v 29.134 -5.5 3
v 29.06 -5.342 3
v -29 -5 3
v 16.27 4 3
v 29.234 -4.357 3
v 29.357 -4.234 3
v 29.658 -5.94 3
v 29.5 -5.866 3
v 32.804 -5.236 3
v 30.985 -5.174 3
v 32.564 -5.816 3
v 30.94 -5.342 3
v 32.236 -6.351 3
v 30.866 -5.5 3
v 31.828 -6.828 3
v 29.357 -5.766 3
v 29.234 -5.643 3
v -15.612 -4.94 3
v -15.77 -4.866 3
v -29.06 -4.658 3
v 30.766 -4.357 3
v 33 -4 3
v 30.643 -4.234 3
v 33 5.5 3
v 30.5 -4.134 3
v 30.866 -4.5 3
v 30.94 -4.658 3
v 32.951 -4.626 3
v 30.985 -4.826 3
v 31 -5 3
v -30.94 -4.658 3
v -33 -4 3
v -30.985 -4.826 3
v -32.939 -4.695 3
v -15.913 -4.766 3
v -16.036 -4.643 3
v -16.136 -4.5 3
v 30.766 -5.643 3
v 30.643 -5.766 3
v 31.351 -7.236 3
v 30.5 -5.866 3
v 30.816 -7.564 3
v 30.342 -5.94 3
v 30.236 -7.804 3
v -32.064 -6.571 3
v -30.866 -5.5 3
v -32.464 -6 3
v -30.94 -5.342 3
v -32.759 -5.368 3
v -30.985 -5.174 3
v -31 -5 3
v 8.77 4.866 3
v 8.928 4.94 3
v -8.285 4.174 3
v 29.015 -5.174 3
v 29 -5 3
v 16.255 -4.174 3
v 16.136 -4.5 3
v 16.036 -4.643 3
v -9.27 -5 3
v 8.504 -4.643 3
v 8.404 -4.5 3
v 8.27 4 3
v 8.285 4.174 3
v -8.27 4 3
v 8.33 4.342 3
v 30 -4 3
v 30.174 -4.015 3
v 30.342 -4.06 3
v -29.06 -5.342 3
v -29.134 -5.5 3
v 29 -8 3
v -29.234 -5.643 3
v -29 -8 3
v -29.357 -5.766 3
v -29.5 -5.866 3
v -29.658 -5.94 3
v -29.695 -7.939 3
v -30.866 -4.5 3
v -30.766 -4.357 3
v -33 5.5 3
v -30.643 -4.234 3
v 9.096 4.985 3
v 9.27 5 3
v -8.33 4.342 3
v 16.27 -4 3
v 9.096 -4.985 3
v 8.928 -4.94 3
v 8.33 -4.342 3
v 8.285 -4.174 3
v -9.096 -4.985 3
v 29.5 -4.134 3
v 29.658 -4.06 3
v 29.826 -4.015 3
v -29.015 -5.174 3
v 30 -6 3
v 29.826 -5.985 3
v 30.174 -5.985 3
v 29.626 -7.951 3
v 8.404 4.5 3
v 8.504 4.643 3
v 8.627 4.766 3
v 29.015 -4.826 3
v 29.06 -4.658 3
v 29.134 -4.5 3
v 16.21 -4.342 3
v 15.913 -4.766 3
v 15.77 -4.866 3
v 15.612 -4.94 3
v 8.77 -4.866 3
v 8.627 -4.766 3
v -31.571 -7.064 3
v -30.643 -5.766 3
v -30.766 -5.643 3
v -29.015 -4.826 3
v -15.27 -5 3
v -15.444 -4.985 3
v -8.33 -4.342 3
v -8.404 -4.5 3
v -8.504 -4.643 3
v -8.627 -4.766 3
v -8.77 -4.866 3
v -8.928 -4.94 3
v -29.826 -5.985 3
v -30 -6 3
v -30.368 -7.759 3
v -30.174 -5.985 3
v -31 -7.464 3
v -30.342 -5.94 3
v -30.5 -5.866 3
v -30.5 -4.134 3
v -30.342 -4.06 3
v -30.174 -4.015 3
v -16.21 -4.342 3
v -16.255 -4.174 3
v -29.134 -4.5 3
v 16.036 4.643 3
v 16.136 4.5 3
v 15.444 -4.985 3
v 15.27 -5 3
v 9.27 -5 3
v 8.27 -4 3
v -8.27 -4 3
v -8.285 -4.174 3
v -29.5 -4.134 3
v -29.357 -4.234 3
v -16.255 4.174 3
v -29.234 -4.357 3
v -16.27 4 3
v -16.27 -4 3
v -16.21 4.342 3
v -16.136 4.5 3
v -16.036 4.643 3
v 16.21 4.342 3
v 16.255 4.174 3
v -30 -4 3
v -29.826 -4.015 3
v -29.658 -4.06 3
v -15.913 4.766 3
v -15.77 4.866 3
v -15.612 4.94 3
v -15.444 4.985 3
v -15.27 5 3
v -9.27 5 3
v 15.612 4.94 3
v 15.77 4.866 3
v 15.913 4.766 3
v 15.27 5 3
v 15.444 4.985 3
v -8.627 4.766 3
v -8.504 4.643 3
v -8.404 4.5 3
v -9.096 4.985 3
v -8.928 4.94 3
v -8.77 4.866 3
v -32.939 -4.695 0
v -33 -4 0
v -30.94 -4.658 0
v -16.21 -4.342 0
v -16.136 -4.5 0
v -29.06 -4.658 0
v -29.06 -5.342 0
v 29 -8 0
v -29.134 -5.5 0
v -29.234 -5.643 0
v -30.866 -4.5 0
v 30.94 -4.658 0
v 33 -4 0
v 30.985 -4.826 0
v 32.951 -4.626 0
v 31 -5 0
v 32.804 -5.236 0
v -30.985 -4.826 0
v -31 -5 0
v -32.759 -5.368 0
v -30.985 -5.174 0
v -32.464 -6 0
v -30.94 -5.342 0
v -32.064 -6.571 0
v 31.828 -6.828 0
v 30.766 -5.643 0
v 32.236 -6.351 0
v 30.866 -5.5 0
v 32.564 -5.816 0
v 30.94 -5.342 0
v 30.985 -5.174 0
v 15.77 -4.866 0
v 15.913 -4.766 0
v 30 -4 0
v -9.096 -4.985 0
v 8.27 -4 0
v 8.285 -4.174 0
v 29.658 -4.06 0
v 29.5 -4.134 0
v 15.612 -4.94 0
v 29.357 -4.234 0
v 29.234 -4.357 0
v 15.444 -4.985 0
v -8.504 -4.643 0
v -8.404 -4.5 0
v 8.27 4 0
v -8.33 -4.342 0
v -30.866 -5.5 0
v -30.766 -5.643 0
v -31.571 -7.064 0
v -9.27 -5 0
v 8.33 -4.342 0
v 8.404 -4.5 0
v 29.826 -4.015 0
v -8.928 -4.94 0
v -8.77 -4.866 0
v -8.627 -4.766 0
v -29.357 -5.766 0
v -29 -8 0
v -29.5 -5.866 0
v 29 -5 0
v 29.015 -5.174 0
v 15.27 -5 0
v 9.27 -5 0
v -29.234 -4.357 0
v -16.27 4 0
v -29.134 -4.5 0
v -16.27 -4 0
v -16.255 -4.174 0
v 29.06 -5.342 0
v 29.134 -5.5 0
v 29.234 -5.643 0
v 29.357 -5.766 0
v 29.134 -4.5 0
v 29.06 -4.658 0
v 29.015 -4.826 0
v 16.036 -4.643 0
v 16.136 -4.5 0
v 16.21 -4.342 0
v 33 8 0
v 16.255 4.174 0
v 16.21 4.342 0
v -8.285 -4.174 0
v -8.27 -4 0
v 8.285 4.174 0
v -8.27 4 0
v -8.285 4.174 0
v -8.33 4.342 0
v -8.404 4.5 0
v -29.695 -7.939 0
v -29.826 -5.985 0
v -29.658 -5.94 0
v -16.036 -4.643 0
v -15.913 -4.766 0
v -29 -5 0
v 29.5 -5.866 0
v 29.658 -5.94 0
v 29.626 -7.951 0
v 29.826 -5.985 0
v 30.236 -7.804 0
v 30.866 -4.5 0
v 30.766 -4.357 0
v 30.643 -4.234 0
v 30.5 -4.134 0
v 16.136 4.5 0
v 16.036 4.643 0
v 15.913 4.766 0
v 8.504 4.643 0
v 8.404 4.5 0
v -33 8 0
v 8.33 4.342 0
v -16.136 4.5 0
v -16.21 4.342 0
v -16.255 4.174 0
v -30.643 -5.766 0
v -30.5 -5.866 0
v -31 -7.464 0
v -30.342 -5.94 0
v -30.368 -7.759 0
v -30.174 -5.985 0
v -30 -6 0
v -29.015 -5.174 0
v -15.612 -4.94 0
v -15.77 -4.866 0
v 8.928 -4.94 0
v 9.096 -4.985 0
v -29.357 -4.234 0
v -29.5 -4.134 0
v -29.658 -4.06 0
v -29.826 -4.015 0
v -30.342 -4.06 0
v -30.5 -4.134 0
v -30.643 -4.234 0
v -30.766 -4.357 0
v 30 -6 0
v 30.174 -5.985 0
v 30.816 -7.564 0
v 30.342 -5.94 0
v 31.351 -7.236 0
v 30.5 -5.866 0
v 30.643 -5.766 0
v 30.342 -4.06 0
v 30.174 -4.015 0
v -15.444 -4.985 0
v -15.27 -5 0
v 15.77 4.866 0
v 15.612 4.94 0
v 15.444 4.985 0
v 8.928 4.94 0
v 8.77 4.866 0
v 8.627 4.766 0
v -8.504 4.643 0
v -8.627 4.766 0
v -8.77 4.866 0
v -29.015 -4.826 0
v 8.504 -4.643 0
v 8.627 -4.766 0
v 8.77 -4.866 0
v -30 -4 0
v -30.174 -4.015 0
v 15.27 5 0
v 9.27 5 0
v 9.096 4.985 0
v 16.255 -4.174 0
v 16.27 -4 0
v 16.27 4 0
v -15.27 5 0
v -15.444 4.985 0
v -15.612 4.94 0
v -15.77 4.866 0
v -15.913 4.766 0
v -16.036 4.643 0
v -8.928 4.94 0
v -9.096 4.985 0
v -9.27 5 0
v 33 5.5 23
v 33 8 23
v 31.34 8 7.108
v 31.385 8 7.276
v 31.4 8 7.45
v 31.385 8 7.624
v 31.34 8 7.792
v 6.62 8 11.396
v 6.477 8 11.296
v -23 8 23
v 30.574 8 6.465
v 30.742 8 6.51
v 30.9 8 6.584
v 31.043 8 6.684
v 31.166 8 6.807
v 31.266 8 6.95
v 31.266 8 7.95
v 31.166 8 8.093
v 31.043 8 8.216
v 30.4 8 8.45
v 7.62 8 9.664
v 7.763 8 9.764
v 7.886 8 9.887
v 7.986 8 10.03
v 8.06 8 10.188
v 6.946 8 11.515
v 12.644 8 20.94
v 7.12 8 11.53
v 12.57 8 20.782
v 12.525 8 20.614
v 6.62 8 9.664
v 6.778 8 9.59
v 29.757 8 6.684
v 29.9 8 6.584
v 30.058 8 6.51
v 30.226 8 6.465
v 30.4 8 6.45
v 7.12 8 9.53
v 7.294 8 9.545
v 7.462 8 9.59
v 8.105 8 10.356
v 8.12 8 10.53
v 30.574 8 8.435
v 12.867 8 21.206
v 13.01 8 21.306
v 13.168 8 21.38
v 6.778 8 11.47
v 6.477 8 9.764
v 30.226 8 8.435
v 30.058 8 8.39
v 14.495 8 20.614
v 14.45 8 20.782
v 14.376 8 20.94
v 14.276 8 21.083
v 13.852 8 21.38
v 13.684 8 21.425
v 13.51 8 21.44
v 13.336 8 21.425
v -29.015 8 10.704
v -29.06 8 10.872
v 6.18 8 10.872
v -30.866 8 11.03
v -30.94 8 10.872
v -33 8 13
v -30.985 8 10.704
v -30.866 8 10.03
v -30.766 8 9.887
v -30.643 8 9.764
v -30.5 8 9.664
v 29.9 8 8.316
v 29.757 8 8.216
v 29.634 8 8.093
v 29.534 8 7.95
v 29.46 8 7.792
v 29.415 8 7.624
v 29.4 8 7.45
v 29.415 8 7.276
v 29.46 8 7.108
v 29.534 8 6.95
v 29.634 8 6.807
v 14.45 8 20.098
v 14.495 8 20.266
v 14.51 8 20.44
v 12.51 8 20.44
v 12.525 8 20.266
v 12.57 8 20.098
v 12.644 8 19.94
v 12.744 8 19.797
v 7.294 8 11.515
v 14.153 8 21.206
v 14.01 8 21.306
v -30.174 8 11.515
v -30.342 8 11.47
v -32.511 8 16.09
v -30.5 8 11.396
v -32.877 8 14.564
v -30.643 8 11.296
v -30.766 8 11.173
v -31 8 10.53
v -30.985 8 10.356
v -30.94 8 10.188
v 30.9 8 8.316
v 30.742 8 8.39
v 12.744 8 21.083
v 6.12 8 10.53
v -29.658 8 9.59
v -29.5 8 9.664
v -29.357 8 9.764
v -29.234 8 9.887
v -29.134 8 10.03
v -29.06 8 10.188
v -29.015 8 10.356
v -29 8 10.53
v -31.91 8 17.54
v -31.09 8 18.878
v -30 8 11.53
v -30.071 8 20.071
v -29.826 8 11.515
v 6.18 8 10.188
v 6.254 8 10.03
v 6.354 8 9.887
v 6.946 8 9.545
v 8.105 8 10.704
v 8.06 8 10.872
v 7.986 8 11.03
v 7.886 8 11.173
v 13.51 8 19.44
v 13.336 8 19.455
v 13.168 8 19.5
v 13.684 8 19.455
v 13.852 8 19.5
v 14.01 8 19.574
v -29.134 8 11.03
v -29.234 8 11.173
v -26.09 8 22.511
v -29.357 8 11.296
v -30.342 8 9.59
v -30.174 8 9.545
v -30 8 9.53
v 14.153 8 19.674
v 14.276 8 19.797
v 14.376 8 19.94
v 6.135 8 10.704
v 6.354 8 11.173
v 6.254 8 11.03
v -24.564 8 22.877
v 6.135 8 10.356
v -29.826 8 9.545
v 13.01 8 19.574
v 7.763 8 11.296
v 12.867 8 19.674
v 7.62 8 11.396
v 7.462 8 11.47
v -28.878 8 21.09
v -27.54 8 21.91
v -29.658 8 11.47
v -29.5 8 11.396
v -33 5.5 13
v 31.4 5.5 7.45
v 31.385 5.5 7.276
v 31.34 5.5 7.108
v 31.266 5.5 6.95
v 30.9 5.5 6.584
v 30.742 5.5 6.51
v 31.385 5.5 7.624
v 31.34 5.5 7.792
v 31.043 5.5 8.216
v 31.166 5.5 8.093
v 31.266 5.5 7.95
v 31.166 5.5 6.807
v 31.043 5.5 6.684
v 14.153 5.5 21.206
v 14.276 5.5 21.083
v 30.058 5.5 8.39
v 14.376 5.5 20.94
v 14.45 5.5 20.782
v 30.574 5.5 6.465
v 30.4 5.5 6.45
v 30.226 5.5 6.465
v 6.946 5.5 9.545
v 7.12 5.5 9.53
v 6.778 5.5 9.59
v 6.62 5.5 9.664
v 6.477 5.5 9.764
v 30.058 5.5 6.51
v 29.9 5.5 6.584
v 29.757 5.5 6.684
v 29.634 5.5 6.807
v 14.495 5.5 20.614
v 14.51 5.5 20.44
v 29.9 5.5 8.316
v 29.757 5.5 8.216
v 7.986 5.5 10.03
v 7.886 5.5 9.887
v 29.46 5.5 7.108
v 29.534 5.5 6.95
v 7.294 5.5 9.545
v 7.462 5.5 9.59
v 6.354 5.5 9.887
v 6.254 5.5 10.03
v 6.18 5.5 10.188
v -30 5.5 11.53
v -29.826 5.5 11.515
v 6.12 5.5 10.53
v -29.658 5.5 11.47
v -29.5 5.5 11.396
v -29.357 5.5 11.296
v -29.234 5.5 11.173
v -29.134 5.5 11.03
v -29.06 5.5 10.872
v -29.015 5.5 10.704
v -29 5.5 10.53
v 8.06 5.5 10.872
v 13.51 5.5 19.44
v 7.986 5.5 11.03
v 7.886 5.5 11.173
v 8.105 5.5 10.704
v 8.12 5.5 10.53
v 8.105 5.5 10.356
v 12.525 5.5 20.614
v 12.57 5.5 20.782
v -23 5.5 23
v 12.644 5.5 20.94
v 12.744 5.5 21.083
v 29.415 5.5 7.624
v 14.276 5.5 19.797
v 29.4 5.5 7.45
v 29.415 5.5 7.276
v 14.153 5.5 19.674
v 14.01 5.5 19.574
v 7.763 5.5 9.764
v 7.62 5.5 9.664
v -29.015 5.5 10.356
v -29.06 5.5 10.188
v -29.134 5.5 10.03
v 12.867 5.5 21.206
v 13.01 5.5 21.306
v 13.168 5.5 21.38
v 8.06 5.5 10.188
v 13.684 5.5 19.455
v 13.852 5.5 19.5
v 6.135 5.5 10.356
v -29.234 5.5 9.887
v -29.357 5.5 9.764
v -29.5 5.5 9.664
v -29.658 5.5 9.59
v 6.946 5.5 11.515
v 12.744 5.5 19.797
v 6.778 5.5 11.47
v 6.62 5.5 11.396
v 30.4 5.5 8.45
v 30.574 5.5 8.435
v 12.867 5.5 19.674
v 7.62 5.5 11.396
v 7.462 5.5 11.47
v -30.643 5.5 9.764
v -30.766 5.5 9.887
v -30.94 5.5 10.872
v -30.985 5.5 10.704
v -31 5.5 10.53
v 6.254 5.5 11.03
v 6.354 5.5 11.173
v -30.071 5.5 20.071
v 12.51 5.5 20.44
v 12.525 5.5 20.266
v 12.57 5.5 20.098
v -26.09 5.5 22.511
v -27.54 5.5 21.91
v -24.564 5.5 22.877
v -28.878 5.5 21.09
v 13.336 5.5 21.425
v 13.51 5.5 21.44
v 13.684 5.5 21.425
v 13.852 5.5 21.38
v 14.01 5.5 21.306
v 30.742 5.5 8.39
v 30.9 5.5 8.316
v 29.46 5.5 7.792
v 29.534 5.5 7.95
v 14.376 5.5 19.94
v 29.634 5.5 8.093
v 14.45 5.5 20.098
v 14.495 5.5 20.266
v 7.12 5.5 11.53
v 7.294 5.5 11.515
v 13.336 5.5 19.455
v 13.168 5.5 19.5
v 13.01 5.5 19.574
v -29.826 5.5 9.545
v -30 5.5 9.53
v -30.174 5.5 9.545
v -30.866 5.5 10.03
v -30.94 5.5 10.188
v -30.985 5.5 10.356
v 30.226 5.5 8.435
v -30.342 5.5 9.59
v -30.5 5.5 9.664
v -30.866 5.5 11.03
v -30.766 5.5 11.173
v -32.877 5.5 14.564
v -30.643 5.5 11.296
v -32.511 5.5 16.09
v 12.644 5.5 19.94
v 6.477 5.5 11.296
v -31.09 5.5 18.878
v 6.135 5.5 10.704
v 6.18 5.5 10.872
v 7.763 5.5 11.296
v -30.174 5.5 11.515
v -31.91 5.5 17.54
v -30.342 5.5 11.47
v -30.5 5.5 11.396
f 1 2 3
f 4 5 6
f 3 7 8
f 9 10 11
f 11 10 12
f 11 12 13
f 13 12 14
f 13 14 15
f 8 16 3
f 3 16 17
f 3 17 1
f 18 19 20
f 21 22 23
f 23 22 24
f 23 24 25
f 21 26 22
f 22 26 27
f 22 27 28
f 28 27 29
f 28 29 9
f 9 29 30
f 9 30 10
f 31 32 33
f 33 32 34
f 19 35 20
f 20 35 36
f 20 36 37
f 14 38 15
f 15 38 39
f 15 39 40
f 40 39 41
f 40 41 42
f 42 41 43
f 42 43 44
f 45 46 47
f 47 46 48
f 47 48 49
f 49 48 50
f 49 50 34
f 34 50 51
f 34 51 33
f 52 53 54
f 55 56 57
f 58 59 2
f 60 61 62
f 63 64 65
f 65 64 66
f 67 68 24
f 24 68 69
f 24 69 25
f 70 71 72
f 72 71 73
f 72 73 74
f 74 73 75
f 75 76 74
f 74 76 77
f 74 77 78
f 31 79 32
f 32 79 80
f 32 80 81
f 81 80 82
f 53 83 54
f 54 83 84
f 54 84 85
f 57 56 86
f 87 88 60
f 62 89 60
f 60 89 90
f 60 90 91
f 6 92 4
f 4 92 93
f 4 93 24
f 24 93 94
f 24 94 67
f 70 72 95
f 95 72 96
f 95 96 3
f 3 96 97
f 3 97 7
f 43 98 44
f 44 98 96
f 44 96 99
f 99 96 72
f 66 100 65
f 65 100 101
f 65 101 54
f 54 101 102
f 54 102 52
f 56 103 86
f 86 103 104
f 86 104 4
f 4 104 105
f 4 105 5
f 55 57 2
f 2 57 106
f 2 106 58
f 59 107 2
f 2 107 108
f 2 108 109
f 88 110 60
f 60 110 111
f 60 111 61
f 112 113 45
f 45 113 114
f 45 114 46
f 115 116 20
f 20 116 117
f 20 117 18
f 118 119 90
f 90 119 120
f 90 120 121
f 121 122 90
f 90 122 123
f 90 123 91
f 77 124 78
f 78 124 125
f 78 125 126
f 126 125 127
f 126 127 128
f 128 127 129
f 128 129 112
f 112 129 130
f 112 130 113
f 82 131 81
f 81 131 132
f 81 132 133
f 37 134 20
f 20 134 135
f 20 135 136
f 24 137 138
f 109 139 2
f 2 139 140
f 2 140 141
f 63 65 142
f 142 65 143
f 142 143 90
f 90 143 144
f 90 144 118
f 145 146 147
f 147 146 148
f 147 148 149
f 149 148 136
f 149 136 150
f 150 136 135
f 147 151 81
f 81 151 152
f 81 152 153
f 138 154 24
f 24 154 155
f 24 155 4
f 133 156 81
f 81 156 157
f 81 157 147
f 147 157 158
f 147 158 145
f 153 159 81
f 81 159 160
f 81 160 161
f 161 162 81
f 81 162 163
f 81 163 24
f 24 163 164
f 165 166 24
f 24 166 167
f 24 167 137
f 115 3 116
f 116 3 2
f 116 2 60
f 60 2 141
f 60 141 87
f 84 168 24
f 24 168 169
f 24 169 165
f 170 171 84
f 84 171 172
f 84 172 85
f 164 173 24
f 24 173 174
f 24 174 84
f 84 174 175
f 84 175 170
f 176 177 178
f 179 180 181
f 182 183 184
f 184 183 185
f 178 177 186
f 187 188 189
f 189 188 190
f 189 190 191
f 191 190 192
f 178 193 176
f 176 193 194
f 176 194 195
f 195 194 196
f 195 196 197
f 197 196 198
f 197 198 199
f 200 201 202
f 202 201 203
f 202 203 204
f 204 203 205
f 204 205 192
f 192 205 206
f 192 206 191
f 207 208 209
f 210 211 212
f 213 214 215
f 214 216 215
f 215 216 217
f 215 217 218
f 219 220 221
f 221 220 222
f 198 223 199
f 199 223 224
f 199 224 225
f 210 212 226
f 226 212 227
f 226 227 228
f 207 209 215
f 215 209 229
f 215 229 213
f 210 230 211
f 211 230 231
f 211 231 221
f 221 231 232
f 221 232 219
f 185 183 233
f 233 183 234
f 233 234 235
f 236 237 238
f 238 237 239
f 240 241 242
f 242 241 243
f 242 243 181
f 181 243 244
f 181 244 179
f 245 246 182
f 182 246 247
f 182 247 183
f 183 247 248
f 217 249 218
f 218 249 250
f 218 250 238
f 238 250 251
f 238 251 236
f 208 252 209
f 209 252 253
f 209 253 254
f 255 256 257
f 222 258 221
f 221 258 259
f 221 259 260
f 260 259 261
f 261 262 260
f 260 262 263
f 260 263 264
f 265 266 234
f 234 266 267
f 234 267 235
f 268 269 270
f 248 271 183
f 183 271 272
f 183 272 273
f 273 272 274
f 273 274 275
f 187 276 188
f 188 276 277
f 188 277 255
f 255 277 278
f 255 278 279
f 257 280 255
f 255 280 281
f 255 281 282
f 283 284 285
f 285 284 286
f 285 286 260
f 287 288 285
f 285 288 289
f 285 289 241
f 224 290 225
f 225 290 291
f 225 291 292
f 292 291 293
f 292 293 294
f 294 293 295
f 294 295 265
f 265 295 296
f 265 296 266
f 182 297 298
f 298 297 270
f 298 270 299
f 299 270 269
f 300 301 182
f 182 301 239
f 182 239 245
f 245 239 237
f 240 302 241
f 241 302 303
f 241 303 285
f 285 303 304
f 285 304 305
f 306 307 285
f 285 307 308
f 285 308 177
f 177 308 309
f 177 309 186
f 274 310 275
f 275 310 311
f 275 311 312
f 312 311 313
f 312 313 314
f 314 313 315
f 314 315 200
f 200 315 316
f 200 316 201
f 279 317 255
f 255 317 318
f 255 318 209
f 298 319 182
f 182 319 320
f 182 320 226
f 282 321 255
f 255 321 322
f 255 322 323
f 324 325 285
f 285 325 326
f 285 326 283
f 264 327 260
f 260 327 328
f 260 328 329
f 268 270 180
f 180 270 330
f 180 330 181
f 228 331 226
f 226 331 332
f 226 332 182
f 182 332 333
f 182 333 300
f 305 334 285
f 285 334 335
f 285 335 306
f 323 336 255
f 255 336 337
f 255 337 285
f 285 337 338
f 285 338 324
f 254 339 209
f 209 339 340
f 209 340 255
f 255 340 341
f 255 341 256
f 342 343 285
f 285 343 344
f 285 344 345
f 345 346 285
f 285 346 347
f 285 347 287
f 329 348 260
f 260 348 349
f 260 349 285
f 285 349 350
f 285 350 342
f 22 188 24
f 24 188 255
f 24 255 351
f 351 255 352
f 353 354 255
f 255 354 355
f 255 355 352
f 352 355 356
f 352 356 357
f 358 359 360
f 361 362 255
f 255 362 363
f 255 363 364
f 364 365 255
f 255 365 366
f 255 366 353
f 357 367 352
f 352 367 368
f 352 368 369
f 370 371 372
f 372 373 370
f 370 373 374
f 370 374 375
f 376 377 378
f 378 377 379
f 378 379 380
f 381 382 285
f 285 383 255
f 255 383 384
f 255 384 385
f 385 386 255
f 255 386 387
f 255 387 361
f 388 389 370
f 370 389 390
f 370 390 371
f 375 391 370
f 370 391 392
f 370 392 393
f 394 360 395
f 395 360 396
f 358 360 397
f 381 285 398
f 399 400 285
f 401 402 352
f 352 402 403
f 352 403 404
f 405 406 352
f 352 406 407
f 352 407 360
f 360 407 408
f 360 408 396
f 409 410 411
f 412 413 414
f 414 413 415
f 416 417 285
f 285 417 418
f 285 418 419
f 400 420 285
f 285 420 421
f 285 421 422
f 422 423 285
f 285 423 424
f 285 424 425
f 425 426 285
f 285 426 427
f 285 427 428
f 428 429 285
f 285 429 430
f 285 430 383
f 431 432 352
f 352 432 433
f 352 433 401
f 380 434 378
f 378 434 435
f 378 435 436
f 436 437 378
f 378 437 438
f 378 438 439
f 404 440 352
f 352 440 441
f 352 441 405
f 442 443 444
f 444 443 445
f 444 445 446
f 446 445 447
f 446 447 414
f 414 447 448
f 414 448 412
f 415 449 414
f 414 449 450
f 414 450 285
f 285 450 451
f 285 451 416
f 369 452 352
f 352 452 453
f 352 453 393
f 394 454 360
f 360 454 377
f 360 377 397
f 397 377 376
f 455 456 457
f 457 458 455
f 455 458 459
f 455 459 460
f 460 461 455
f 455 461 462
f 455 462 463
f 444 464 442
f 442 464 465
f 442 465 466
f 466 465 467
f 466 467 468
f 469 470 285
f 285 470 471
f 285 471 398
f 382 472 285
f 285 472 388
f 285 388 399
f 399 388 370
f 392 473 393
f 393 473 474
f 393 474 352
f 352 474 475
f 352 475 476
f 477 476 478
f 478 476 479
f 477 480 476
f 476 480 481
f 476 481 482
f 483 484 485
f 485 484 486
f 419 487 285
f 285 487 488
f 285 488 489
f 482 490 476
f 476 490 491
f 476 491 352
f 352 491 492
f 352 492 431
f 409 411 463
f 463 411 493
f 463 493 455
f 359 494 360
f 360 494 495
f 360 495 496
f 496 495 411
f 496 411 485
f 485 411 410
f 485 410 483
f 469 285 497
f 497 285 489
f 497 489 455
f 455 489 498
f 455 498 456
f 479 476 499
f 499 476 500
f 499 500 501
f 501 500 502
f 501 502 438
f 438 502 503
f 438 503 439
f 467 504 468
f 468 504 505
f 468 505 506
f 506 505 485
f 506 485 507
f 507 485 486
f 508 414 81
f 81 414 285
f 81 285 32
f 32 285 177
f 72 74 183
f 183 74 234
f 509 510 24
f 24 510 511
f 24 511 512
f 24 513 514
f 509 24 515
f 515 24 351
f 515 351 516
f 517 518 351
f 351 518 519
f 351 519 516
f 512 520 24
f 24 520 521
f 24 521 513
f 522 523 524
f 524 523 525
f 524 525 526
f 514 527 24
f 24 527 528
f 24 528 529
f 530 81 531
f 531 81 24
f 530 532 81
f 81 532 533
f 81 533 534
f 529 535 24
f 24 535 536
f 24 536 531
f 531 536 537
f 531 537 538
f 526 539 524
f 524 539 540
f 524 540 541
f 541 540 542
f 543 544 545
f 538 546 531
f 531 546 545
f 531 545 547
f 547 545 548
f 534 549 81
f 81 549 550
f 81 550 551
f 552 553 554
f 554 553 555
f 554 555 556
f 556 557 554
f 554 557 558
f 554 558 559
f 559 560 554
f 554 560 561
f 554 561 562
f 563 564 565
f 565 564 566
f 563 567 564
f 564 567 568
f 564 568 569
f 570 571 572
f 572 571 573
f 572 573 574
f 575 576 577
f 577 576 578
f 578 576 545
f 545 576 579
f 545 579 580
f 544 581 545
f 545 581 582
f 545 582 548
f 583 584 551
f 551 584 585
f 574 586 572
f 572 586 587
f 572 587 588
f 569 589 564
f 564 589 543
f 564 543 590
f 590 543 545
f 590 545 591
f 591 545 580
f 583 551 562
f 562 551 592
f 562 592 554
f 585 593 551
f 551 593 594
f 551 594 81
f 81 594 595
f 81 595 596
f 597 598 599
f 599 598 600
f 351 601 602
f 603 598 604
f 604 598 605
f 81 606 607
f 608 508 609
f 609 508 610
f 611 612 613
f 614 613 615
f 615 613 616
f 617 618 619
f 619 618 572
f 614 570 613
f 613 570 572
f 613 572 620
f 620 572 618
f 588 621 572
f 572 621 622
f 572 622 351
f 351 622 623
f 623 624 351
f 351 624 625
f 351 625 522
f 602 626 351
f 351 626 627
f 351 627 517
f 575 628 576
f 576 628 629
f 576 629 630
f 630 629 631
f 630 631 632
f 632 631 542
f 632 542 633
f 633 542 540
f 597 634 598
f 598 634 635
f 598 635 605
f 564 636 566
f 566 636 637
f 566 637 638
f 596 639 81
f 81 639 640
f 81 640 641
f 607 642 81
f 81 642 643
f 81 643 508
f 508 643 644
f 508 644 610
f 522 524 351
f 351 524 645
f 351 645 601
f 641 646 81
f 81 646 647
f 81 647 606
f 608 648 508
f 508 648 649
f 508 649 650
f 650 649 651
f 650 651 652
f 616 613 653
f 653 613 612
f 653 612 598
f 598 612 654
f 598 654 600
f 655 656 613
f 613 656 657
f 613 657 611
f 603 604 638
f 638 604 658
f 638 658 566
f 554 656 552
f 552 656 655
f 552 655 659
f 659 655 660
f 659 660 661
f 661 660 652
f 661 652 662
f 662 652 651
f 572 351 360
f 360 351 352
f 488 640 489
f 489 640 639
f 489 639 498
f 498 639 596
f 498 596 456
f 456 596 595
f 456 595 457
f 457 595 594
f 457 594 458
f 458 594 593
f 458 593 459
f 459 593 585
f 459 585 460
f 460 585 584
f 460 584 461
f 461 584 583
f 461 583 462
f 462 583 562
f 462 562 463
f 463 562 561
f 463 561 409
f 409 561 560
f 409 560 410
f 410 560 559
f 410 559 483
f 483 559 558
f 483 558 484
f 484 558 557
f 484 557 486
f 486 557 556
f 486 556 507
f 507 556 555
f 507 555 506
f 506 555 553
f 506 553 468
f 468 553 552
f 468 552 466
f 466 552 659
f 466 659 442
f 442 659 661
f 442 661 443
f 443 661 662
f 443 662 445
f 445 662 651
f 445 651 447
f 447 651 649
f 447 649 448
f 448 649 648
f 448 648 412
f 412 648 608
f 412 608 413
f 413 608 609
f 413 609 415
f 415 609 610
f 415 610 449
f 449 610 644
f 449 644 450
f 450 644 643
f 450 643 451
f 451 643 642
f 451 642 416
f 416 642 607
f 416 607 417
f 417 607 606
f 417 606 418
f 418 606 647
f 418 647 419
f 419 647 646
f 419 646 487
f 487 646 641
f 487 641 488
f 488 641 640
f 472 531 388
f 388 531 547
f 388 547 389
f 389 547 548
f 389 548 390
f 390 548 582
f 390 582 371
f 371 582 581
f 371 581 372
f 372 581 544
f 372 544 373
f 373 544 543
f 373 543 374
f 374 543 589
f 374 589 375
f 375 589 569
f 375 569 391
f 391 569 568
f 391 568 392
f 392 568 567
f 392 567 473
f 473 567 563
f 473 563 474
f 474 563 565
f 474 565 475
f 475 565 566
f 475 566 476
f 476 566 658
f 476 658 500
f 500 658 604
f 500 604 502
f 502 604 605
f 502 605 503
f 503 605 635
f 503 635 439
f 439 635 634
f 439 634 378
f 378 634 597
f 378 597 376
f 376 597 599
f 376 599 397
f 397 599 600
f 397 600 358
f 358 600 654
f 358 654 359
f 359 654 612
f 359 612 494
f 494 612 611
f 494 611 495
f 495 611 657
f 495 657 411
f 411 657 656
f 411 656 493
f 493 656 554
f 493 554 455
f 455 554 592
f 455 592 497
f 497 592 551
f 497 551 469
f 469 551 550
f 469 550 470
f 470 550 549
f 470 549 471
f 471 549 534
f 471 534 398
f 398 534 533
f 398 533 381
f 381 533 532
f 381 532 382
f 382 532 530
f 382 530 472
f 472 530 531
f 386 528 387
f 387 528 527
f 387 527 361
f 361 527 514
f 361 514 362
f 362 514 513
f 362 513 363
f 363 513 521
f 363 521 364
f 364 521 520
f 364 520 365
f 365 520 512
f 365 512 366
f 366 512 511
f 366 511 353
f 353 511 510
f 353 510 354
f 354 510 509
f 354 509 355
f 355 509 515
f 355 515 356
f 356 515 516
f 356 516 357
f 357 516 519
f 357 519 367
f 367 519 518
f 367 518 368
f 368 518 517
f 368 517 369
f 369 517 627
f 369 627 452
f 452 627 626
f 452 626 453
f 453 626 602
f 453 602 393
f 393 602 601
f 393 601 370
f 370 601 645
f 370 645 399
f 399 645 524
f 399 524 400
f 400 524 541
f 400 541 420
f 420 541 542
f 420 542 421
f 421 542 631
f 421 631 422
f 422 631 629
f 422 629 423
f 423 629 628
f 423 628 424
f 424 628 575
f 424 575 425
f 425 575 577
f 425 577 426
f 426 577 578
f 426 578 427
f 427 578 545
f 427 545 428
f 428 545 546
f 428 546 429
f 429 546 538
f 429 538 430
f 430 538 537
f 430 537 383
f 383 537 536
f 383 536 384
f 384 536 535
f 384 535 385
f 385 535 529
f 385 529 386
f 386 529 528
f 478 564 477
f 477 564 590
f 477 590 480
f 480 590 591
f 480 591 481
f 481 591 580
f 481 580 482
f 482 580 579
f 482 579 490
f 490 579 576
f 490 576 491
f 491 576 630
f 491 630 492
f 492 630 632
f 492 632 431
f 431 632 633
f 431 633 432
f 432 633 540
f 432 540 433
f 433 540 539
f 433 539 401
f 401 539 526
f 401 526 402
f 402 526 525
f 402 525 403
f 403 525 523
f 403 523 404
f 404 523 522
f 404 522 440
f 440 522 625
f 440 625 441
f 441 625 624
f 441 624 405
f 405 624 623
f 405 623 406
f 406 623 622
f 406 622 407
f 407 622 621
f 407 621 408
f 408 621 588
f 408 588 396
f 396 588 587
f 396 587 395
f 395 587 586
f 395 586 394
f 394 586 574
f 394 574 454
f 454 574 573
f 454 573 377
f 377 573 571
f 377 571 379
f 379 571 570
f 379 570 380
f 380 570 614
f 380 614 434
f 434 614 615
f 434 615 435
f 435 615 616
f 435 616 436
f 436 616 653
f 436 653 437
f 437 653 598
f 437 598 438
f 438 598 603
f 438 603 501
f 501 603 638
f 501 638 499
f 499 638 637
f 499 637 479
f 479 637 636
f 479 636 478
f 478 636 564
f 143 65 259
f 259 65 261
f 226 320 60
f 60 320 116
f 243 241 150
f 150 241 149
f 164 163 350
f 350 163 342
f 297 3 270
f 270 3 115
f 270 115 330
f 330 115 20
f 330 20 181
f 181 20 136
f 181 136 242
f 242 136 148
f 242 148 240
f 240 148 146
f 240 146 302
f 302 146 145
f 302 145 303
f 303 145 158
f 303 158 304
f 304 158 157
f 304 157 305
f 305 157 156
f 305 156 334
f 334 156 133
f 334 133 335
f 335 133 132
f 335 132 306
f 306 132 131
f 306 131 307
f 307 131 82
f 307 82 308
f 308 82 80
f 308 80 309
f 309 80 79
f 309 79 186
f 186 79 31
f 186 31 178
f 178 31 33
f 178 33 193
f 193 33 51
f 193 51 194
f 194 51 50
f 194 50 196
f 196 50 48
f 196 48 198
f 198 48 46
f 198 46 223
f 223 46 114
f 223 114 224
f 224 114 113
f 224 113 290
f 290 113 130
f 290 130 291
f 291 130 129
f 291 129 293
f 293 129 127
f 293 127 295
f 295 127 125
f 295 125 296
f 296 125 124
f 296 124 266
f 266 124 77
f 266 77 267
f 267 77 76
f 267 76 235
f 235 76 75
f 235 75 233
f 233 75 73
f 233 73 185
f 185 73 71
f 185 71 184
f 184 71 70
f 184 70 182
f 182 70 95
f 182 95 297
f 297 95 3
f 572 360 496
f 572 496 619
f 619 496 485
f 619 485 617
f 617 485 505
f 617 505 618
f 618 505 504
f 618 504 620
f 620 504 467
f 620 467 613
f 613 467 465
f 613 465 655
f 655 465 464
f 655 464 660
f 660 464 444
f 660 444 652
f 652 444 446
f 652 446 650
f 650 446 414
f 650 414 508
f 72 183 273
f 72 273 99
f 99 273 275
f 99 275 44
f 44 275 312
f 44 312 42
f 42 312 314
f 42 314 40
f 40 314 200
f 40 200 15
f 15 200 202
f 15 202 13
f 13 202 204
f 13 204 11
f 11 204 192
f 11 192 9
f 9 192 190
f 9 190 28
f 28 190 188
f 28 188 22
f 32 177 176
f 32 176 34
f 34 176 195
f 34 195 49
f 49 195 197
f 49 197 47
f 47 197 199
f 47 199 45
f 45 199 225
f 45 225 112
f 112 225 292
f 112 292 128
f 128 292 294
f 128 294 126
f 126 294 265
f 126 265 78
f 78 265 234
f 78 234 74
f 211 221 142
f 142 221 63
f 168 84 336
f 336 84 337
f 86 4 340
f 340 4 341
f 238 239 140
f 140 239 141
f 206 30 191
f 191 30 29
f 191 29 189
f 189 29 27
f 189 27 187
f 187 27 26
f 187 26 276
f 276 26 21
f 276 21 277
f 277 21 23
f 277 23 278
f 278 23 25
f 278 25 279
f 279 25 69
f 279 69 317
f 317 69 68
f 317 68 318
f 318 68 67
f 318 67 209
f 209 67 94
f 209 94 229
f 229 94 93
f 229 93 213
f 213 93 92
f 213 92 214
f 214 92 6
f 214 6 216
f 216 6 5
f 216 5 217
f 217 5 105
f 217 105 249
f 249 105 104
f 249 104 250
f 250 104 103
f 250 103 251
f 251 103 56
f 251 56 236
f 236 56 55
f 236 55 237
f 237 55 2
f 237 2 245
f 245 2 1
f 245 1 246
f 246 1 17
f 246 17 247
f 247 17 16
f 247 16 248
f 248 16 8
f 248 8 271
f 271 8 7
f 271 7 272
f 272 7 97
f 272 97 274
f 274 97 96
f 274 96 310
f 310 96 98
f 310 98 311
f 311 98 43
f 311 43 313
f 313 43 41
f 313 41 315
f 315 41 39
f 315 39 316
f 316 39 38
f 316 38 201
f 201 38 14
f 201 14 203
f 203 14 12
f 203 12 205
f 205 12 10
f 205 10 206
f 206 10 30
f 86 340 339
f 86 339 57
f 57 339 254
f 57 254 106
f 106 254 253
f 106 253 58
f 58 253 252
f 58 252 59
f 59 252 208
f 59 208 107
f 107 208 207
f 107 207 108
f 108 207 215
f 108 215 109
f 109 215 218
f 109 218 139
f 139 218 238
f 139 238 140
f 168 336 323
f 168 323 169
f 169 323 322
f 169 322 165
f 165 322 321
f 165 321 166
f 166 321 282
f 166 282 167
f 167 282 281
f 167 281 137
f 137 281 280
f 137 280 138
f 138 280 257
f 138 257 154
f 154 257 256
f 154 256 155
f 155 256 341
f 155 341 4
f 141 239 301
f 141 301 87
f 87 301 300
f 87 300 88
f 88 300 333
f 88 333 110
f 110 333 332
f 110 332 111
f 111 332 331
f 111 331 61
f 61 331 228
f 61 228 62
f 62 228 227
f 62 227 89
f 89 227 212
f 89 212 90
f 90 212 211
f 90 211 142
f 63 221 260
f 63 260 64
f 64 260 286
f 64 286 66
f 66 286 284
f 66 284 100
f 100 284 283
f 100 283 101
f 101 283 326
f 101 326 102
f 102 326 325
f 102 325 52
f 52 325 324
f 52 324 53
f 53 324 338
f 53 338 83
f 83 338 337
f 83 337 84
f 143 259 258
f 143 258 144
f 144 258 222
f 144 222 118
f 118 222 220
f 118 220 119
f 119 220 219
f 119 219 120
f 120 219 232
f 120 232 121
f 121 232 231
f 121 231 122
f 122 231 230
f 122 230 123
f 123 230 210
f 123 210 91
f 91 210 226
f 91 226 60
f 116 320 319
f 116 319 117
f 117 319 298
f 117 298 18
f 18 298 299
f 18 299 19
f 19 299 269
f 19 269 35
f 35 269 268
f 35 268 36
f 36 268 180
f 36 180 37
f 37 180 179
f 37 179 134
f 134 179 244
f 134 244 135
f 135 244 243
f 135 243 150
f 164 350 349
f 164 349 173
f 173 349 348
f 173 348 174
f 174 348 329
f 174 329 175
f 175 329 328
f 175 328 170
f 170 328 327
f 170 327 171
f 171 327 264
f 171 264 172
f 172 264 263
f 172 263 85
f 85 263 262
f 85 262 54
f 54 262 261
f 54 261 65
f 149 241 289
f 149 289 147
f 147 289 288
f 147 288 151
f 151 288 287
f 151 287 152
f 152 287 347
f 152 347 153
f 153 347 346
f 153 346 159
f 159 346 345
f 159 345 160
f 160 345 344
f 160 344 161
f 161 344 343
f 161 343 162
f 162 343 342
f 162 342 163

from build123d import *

# Parameters (mm, degrees)
ESBO_O21_W               = 66
ESBO_O21_H               = 16
RESSALTO_EXTRUS_O1_DEPTH = 3
ESBO_O22_W               = 66
ESBO_O22_H               = 2.5
RESSALTO_EXTRUS_O2_DEPTH = 20
ESBO_O23_R               = 1
CORTE_EXTRUS_O9_DEPTH    = 43.429353047
ESBO_O24_R               = 1
ESBO_O24_W               = 8
ESBO_O24_H               = 10
CORTE_EXTRUS_O10_DEPTH   = 40.40812099
FILETE1_R                = 10
FILETE2_R                = 4
FILETE3_R                = 1


with BuildPart() as part:
    # Esboço21 → Ressalto-extrusão1 (new body)
    with BuildSketch(Plane.XY):
        Rectangle(ESBO_O21_W, ESBO_O21_H)
    extrude(amount=RESSALTO_EXTRUS_O1_DEPTH)

    # Esboço22 → Ressalto-extrusão2 (add)
    with BuildSketch(Plane.XY.offset(3)):
        with Locations((0, 6.75)):
            Rectangle(ESBO_O22_W, ESBO_O22_H)
    extrude(amount=RESSALTO_EXTRUS_O2_DEPTH)

    # Esboço23 → Corte-extrusão9 (cut, through all)
    with BuildSketch(Plane.XZ.offset(-5.5)):
        with Locations(Location((-30, 10.53, 0), (0, 0, 270))):
            Circle(ESBO_O23_R)
        with Locations(Location((7.12, 10.53, 0), (0, 0, 270))):
            Circle(ESBO_O23_R)
        with Locations(Location((30.4, 7.45, 0), (0, 0, 270))):
            Circle(ESBO_O23_R)
        with Locations(Location((13.51, 20.44, 0), (0, 0, 270))):
            Circle(ESBO_O23_R)
    extrude(amount=-CORTE_EXTRUS_O9_DEPTH, mode=Mode.SUBTRACT)

    # Esboço24 → Corte-extrusão10 (cut, through all)
    with BuildSketch(Plane.XY.offset(3)):
        with Locations((-30, -5)):
            Circle(ESBO_O24_R)
        with Locations((-12.27, 0)):
            Rectangle(ESBO_O24_W, ESBO_O24_H)
    corte_extrus_o10 = extrude(amount=-CORTE_EXTRUS_O10_DEPTH, mode=Mode.SUBTRACT)

    # Filete1
    filete1_edges = [part.edges().sort_by_distance(p)[0] for p in [
        (-33, 6.75, 23),
    ]]
    fillet(filete1_edges, radius=FILETE1_R)

    # Filete2
    filete2_edges = [part.edges().sort_by_distance(p)[0] for p in [
        (33, -8, 1.5),
        (-33, -8, 1.5),
    ]]
    fillet(filete2_edges, radius=FILETE2_R)

    # Espelhar1: Corte-extrusão10 across plane
    add(corte_extrus_o10.mirror(Plane(origin=(0, 0, 0), x_dir=(0, 0, 1), z_dir=(1, 0, 0))), mode=Mode.SUBTRACT)

    # Filete3
    filete3_edges = [part.edges().sort_by_distance(p)[0] for p in [
        (-8.27, 5, 1.5),
        (-8.27, -5, 1.5),
        (-16.27, -5, 1.5),
        (-16.27, 5, 1.5),
        (8.27, -5, 1.5),
        (8.27, 5, 1.5),
        (16.27, 5, 1.5),
        (16.27, -5, 1.5),
    ]]
    fillet(filete3_edges, radius=FILETE3_R)


solid = part.part
